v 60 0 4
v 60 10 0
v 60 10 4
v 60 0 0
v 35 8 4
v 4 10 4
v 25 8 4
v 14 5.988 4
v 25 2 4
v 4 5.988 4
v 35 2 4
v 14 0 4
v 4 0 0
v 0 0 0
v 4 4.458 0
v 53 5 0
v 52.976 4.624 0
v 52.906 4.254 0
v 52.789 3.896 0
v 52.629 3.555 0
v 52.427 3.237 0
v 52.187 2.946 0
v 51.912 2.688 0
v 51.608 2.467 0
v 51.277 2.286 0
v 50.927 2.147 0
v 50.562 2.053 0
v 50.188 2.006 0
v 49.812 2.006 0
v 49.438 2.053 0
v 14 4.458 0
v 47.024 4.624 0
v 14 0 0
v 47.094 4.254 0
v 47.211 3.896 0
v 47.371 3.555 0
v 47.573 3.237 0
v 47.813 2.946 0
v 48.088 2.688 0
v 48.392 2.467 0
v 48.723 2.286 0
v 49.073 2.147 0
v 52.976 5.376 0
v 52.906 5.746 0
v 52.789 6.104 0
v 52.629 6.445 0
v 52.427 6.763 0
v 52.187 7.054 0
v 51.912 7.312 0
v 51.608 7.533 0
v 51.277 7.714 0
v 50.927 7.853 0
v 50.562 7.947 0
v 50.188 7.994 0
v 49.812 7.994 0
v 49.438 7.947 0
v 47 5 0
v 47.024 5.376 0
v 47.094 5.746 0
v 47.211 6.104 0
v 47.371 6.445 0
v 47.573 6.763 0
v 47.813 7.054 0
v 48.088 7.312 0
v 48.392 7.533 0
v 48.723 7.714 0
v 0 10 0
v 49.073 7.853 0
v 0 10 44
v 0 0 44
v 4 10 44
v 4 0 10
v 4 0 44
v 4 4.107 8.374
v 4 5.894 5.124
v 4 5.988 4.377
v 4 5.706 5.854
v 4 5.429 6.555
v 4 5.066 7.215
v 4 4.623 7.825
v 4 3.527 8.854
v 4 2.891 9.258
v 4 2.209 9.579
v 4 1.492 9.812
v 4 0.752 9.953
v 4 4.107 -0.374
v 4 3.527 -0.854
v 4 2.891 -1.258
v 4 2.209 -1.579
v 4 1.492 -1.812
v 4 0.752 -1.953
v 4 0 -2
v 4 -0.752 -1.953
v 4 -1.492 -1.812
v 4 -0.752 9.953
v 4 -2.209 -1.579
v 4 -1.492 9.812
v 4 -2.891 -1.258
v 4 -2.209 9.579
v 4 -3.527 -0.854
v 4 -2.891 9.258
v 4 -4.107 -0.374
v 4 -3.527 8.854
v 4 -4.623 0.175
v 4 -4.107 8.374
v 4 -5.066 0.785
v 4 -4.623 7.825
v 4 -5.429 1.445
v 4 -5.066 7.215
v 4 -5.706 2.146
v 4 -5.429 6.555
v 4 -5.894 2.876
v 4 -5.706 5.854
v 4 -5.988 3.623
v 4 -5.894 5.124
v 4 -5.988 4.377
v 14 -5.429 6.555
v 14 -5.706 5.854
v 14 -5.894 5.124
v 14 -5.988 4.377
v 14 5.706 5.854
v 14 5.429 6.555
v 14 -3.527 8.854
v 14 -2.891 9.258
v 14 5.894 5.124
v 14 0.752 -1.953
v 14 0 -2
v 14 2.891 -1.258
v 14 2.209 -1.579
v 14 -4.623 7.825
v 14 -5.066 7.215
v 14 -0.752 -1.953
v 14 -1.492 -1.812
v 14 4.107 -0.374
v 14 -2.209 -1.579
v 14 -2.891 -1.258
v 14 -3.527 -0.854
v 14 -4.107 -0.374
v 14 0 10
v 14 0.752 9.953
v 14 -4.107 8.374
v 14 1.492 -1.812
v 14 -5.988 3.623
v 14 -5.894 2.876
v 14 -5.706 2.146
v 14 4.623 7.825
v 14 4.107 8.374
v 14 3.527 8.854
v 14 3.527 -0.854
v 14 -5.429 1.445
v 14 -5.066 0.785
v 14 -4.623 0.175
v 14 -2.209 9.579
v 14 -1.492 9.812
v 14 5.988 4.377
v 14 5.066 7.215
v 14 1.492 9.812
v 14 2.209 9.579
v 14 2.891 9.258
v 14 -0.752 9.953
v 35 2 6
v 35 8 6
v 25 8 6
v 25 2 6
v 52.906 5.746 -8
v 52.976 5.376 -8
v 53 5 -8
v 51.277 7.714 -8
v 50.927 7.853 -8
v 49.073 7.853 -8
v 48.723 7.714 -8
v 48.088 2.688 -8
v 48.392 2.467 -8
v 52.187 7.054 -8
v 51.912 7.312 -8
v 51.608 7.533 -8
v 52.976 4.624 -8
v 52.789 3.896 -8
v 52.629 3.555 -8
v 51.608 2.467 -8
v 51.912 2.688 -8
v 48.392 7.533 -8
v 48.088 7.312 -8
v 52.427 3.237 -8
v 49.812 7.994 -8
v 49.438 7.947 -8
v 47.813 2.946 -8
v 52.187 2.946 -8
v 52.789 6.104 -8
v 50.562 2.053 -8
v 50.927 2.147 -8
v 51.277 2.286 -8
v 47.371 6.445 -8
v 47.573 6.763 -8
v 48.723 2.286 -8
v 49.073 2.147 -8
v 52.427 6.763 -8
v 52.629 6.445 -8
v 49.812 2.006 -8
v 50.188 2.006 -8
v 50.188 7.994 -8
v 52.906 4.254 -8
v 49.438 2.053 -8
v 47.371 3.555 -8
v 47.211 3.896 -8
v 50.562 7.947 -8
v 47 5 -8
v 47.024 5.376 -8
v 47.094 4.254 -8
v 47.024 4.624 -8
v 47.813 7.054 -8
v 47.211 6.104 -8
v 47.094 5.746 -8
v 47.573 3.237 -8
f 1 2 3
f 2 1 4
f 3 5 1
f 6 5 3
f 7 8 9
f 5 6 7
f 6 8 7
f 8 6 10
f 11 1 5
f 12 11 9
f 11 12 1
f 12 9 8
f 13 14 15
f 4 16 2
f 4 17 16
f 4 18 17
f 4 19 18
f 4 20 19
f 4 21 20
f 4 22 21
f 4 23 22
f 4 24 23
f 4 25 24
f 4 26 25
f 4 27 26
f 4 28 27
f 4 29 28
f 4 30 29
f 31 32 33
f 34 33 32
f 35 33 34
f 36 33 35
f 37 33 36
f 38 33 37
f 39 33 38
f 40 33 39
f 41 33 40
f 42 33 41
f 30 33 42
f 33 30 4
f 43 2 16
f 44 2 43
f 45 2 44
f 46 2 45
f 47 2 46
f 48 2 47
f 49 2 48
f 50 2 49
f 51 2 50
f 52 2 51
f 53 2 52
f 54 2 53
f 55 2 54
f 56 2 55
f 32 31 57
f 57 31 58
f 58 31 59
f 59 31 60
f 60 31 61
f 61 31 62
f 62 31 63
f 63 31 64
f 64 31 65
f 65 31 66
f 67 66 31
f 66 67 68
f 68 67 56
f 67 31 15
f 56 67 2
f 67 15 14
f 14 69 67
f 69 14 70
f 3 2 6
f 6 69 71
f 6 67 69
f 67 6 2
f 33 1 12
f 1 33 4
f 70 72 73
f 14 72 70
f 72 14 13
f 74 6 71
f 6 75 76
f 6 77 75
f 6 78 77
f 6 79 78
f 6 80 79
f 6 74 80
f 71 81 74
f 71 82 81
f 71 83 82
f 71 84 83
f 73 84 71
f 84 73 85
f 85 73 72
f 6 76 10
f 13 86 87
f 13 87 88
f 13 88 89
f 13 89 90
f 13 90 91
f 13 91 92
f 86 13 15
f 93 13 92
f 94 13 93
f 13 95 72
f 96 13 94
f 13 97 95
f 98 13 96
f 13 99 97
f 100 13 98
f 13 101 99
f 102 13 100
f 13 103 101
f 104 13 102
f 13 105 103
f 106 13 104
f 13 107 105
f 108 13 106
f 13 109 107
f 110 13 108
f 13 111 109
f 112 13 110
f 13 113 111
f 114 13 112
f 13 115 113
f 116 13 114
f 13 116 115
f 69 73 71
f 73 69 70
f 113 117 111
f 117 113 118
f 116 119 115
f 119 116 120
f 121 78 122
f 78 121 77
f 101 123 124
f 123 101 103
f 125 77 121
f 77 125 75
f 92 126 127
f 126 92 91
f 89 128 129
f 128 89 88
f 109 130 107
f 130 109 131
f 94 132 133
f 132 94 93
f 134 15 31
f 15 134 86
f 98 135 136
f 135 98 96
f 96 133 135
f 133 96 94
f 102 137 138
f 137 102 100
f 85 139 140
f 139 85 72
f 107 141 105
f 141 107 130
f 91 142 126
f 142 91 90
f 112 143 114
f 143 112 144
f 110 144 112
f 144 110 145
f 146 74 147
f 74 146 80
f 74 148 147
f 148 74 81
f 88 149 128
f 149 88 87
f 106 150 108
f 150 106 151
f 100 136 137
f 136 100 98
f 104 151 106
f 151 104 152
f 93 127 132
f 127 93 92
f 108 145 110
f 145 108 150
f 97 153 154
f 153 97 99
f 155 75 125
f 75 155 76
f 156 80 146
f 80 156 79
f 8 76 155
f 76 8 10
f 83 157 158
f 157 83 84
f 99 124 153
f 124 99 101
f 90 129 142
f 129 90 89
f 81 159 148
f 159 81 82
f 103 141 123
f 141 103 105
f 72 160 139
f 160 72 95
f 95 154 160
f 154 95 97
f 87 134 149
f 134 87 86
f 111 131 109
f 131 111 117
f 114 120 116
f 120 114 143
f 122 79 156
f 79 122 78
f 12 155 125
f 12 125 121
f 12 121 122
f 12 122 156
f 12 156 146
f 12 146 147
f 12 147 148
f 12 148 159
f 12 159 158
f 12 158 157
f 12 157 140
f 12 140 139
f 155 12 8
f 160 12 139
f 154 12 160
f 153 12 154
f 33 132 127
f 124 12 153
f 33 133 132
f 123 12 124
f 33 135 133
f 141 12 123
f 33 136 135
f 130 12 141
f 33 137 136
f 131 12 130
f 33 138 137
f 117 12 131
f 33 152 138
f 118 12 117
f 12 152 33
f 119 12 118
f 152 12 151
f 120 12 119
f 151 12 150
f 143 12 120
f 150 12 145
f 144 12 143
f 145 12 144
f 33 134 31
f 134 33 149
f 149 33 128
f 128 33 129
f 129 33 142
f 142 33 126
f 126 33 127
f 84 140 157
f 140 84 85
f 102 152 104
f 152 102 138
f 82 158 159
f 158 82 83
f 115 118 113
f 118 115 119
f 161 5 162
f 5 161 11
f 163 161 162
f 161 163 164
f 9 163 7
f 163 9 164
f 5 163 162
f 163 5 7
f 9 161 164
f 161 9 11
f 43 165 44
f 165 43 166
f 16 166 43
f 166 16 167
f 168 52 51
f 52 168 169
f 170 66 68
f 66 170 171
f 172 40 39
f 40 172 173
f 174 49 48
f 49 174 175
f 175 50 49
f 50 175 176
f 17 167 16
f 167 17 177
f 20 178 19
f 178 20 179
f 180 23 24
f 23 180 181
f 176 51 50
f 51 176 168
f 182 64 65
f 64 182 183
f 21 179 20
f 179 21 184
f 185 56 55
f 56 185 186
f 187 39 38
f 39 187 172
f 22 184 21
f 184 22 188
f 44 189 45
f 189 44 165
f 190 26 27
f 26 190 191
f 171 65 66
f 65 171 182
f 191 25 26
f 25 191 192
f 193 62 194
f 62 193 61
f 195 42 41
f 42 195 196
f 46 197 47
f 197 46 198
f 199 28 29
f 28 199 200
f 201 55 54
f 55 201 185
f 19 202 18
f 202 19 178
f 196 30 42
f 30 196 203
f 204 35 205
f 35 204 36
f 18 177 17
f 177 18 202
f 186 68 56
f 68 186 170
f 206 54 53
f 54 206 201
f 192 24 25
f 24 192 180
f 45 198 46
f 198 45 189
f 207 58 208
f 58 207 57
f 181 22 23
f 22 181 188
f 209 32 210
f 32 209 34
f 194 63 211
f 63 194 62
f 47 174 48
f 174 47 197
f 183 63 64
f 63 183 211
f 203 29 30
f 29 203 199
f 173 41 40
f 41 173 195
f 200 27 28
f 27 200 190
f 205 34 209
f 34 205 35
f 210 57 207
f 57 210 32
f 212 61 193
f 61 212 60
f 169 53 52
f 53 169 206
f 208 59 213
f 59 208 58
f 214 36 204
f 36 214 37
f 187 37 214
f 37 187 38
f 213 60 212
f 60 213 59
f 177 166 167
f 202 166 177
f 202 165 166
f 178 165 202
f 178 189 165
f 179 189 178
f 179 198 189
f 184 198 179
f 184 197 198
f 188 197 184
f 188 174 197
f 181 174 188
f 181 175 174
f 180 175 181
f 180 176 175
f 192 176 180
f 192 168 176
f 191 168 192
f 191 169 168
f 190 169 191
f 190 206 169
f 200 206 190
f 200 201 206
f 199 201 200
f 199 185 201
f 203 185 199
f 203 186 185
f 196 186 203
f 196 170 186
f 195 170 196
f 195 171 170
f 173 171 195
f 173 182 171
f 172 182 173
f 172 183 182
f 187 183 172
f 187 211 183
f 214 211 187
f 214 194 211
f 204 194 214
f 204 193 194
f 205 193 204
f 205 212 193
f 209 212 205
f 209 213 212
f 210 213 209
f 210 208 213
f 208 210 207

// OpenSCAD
// Parameters
base_length = 60;
base_width = 10;
base_thickness = 4;

vertical_height = 40;
vertical_thickness = 4;

pin_diameter = 6;
pin_height = 8;

raised_feature_length = 10;
raised_feature_width = 6;
raised_feature_height = 2;

fillet_radius = 6;

// Main module
module angled_bracket_with_pin() {
    // Horizontal base
    difference() {
        union() {
            // Base
            cube([base_length, base_width, base_thickness]);

            // Vertical arm
            translate([0, 0, base_thickness])
                cube([vertical_thickness, base_width, vertical_height]);

            // Fillet (approximate with cylinder)
            translate([vertical_thickness, 0, base_thickness])
                rotate([0, 90, 0])
                    cylinder(h = base_width, r = fillet_radius, $fn=50);

            // Raised rectangular feature
            translate([base_length/2 - raised_feature_length/2, 
                       base_width/2 - raised_feature_width/2, 
                       base_thickness])
                cube([raised_feature_length, raised_feature_width, raised_feature_height]);

            // Cylindrical pin
            translate([base_length - 10, base_width/2, -pin_height])
                cylinder(h = pin_height, d = pin_diameter, $fn=50);
        }
    }
}

// Render the model
angled_bracket_with_pin();
